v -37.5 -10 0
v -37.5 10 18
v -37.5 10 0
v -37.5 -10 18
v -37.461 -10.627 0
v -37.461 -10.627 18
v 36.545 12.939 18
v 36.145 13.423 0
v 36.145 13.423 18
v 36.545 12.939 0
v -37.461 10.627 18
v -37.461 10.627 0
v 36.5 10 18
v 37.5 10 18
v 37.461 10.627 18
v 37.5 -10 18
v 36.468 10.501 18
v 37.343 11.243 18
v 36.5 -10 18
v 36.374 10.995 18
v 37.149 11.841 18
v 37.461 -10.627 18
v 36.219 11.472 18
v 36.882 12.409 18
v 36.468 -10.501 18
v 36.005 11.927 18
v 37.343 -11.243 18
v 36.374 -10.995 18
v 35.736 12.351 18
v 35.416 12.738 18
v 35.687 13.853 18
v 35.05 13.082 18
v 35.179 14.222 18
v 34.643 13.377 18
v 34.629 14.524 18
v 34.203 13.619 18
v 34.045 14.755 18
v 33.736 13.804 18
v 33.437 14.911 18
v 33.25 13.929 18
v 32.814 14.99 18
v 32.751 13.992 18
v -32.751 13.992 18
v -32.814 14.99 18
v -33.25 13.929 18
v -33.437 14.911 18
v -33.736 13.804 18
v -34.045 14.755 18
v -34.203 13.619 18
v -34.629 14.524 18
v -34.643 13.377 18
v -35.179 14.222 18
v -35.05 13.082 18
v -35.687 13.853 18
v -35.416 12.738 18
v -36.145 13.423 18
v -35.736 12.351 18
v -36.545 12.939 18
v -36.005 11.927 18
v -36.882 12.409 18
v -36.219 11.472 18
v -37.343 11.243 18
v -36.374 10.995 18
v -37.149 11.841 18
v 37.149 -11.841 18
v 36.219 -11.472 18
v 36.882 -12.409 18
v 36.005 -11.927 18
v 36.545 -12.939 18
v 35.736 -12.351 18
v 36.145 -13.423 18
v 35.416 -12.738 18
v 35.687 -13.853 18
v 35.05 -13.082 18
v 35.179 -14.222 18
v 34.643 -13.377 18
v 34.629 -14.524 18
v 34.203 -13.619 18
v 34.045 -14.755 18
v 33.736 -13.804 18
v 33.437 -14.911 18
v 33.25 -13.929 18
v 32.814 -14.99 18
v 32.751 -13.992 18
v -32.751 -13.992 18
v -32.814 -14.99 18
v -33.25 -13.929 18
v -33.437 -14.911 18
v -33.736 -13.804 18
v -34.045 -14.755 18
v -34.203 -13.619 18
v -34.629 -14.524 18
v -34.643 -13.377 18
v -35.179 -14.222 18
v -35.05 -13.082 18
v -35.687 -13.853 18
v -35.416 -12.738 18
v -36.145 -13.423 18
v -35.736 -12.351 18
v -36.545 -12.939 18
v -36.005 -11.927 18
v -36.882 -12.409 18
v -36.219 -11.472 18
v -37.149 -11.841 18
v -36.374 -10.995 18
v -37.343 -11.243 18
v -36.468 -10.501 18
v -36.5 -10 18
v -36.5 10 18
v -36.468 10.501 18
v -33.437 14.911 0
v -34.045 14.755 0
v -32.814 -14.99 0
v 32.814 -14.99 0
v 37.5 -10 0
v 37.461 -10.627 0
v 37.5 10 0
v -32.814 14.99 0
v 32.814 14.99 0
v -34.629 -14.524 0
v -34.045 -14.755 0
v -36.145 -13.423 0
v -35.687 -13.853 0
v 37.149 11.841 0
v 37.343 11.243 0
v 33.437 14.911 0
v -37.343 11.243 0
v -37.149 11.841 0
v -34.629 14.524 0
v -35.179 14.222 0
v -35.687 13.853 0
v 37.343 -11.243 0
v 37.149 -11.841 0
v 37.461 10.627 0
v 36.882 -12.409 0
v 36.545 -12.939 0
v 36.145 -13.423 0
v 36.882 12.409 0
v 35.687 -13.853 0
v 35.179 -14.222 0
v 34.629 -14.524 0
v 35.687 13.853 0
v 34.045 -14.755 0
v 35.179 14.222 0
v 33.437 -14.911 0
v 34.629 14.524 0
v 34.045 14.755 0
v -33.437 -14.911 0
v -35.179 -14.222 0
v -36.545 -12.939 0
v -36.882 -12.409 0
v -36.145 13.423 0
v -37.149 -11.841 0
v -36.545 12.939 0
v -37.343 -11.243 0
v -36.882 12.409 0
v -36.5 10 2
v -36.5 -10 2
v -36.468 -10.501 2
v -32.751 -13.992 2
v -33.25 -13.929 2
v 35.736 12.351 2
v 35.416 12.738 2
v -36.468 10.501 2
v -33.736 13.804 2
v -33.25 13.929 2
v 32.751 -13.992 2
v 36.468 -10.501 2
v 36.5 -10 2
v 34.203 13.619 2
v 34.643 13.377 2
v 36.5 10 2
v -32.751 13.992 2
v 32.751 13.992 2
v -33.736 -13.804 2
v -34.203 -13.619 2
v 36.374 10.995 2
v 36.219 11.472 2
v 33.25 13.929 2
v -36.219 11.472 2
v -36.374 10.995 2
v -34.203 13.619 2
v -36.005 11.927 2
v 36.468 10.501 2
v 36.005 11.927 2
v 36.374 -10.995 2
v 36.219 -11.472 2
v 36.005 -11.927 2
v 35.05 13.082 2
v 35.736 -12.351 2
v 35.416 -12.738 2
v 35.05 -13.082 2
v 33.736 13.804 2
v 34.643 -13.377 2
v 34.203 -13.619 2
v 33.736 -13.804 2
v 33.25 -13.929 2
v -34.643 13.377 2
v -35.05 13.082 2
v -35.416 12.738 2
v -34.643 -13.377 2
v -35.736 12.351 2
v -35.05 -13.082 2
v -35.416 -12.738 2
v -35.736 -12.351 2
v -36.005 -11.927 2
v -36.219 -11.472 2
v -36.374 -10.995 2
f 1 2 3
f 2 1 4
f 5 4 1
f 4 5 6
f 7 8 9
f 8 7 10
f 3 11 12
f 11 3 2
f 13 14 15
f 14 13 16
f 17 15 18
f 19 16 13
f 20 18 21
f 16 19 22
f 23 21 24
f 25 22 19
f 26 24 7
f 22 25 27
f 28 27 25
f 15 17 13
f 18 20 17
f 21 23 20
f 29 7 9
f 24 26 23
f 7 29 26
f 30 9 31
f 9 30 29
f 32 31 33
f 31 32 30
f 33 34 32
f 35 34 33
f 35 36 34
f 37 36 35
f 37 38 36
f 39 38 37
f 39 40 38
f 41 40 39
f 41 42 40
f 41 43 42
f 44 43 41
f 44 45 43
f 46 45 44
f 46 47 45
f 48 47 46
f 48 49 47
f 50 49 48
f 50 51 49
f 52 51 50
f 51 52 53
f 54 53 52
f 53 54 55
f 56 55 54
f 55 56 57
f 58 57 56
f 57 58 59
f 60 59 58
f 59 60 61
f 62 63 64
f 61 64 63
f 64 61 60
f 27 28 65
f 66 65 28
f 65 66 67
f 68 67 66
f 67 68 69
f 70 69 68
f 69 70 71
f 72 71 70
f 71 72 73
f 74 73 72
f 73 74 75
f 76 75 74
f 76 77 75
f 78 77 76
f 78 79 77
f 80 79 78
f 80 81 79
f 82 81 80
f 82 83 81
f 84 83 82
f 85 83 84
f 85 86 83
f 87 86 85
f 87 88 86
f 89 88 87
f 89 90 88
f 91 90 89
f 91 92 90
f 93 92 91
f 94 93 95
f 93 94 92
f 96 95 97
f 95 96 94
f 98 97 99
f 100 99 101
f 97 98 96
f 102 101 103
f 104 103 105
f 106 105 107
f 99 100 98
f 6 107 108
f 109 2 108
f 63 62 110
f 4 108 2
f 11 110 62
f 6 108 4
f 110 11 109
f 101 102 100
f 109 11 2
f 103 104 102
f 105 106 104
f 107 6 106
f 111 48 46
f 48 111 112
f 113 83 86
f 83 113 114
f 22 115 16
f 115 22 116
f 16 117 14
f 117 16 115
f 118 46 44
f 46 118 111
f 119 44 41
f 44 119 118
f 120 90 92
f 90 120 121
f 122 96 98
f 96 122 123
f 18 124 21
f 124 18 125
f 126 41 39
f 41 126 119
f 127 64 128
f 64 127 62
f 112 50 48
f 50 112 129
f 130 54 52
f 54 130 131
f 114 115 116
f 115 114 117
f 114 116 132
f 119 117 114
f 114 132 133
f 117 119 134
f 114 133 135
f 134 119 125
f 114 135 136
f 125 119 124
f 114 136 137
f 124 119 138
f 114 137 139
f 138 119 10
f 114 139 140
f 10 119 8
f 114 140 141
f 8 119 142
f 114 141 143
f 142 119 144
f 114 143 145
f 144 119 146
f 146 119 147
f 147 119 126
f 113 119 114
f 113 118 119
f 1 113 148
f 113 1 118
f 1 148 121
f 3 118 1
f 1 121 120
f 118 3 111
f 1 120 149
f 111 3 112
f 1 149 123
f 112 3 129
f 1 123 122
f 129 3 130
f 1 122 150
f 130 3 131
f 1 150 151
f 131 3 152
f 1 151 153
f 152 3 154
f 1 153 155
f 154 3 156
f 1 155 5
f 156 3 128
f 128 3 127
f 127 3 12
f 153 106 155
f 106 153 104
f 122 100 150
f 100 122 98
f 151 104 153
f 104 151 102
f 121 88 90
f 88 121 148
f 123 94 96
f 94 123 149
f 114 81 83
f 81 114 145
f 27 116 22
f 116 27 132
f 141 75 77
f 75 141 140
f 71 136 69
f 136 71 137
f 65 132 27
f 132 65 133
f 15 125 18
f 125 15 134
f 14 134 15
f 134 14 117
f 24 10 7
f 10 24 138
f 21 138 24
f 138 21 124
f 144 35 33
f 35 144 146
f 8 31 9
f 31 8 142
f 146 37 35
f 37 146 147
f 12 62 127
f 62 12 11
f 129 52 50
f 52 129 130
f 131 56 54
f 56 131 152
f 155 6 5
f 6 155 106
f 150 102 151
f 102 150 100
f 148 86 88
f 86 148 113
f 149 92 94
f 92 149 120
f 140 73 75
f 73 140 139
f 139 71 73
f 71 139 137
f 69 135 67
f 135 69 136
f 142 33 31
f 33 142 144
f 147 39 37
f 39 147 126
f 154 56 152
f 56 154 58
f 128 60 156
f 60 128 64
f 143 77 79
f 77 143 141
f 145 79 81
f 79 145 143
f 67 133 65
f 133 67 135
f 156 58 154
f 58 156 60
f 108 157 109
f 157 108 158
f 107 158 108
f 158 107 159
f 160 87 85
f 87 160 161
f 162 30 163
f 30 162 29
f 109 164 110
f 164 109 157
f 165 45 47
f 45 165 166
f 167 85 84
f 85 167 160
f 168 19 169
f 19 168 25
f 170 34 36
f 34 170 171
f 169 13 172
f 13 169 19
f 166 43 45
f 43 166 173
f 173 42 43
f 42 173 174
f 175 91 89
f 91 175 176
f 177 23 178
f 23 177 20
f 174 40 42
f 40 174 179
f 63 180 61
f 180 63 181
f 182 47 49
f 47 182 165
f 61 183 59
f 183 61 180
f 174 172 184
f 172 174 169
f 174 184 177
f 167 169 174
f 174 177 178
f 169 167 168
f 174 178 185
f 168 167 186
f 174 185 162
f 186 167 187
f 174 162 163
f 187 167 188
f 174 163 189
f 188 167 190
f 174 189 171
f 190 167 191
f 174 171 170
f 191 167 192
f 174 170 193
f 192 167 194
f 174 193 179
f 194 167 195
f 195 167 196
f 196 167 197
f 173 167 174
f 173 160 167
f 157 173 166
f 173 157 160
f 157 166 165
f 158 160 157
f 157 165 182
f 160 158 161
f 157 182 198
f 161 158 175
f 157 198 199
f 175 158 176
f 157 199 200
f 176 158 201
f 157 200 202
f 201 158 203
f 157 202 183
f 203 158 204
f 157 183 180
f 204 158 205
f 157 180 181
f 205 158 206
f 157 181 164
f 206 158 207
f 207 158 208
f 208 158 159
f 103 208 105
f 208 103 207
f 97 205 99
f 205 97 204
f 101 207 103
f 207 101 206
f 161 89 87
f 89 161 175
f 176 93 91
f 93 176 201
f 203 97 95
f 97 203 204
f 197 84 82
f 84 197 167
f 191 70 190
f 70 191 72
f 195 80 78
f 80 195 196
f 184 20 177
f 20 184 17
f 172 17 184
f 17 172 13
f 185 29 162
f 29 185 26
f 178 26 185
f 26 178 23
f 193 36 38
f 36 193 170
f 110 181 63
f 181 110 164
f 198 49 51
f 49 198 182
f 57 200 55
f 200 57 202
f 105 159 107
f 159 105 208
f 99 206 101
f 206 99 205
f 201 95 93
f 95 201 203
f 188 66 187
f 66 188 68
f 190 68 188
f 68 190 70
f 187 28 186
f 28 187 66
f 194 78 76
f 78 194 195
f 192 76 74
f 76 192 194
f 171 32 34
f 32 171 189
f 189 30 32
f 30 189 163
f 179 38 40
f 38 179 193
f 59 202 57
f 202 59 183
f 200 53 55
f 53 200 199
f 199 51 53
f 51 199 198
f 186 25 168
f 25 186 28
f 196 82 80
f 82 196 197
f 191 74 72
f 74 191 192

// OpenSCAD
$fn = 50;


difference() {
	union() {
		hull() {
			translate(v = [-32.5000000000, 10.0000000000, 0]) {
				cylinder(h = 18, r = 5);
			}
			translate(v = [32.5000000000, 10.0000000000, 0]) {
				cylinder(h = 18, r = 5);
			}
			translate(v = [-32.5000000000, -10.0000000000, 0]) {
				cylinder(h = 18, r = 5);
			}
			translate(v = [32.5000000000, -10.0000000000, 0]) {
				cylinder(h = 18, r = 5);
			}
		}
	}
	union() {
		translate(v = [0, 0, 2]) {
			#hull() {
				translate(v = [-32.5000000000, 10.0000000000, 0]) {
					cylinder(h = 16, r = 4);
				}
				translate(v = [32.5000000000, 10.0000000000, 0]) {
					cylinder(h = 16, r = 4);
				}
				translate(v = [-32.5000000000, -10.0000000000, 0]) {
					cylinder(h = 16, r = 4);
				}
				translate(v = [32.5000000000, -10.0000000000, 0]) {
					cylinder(h = 16, r = 4);
				}
			}
		}
	}
}
